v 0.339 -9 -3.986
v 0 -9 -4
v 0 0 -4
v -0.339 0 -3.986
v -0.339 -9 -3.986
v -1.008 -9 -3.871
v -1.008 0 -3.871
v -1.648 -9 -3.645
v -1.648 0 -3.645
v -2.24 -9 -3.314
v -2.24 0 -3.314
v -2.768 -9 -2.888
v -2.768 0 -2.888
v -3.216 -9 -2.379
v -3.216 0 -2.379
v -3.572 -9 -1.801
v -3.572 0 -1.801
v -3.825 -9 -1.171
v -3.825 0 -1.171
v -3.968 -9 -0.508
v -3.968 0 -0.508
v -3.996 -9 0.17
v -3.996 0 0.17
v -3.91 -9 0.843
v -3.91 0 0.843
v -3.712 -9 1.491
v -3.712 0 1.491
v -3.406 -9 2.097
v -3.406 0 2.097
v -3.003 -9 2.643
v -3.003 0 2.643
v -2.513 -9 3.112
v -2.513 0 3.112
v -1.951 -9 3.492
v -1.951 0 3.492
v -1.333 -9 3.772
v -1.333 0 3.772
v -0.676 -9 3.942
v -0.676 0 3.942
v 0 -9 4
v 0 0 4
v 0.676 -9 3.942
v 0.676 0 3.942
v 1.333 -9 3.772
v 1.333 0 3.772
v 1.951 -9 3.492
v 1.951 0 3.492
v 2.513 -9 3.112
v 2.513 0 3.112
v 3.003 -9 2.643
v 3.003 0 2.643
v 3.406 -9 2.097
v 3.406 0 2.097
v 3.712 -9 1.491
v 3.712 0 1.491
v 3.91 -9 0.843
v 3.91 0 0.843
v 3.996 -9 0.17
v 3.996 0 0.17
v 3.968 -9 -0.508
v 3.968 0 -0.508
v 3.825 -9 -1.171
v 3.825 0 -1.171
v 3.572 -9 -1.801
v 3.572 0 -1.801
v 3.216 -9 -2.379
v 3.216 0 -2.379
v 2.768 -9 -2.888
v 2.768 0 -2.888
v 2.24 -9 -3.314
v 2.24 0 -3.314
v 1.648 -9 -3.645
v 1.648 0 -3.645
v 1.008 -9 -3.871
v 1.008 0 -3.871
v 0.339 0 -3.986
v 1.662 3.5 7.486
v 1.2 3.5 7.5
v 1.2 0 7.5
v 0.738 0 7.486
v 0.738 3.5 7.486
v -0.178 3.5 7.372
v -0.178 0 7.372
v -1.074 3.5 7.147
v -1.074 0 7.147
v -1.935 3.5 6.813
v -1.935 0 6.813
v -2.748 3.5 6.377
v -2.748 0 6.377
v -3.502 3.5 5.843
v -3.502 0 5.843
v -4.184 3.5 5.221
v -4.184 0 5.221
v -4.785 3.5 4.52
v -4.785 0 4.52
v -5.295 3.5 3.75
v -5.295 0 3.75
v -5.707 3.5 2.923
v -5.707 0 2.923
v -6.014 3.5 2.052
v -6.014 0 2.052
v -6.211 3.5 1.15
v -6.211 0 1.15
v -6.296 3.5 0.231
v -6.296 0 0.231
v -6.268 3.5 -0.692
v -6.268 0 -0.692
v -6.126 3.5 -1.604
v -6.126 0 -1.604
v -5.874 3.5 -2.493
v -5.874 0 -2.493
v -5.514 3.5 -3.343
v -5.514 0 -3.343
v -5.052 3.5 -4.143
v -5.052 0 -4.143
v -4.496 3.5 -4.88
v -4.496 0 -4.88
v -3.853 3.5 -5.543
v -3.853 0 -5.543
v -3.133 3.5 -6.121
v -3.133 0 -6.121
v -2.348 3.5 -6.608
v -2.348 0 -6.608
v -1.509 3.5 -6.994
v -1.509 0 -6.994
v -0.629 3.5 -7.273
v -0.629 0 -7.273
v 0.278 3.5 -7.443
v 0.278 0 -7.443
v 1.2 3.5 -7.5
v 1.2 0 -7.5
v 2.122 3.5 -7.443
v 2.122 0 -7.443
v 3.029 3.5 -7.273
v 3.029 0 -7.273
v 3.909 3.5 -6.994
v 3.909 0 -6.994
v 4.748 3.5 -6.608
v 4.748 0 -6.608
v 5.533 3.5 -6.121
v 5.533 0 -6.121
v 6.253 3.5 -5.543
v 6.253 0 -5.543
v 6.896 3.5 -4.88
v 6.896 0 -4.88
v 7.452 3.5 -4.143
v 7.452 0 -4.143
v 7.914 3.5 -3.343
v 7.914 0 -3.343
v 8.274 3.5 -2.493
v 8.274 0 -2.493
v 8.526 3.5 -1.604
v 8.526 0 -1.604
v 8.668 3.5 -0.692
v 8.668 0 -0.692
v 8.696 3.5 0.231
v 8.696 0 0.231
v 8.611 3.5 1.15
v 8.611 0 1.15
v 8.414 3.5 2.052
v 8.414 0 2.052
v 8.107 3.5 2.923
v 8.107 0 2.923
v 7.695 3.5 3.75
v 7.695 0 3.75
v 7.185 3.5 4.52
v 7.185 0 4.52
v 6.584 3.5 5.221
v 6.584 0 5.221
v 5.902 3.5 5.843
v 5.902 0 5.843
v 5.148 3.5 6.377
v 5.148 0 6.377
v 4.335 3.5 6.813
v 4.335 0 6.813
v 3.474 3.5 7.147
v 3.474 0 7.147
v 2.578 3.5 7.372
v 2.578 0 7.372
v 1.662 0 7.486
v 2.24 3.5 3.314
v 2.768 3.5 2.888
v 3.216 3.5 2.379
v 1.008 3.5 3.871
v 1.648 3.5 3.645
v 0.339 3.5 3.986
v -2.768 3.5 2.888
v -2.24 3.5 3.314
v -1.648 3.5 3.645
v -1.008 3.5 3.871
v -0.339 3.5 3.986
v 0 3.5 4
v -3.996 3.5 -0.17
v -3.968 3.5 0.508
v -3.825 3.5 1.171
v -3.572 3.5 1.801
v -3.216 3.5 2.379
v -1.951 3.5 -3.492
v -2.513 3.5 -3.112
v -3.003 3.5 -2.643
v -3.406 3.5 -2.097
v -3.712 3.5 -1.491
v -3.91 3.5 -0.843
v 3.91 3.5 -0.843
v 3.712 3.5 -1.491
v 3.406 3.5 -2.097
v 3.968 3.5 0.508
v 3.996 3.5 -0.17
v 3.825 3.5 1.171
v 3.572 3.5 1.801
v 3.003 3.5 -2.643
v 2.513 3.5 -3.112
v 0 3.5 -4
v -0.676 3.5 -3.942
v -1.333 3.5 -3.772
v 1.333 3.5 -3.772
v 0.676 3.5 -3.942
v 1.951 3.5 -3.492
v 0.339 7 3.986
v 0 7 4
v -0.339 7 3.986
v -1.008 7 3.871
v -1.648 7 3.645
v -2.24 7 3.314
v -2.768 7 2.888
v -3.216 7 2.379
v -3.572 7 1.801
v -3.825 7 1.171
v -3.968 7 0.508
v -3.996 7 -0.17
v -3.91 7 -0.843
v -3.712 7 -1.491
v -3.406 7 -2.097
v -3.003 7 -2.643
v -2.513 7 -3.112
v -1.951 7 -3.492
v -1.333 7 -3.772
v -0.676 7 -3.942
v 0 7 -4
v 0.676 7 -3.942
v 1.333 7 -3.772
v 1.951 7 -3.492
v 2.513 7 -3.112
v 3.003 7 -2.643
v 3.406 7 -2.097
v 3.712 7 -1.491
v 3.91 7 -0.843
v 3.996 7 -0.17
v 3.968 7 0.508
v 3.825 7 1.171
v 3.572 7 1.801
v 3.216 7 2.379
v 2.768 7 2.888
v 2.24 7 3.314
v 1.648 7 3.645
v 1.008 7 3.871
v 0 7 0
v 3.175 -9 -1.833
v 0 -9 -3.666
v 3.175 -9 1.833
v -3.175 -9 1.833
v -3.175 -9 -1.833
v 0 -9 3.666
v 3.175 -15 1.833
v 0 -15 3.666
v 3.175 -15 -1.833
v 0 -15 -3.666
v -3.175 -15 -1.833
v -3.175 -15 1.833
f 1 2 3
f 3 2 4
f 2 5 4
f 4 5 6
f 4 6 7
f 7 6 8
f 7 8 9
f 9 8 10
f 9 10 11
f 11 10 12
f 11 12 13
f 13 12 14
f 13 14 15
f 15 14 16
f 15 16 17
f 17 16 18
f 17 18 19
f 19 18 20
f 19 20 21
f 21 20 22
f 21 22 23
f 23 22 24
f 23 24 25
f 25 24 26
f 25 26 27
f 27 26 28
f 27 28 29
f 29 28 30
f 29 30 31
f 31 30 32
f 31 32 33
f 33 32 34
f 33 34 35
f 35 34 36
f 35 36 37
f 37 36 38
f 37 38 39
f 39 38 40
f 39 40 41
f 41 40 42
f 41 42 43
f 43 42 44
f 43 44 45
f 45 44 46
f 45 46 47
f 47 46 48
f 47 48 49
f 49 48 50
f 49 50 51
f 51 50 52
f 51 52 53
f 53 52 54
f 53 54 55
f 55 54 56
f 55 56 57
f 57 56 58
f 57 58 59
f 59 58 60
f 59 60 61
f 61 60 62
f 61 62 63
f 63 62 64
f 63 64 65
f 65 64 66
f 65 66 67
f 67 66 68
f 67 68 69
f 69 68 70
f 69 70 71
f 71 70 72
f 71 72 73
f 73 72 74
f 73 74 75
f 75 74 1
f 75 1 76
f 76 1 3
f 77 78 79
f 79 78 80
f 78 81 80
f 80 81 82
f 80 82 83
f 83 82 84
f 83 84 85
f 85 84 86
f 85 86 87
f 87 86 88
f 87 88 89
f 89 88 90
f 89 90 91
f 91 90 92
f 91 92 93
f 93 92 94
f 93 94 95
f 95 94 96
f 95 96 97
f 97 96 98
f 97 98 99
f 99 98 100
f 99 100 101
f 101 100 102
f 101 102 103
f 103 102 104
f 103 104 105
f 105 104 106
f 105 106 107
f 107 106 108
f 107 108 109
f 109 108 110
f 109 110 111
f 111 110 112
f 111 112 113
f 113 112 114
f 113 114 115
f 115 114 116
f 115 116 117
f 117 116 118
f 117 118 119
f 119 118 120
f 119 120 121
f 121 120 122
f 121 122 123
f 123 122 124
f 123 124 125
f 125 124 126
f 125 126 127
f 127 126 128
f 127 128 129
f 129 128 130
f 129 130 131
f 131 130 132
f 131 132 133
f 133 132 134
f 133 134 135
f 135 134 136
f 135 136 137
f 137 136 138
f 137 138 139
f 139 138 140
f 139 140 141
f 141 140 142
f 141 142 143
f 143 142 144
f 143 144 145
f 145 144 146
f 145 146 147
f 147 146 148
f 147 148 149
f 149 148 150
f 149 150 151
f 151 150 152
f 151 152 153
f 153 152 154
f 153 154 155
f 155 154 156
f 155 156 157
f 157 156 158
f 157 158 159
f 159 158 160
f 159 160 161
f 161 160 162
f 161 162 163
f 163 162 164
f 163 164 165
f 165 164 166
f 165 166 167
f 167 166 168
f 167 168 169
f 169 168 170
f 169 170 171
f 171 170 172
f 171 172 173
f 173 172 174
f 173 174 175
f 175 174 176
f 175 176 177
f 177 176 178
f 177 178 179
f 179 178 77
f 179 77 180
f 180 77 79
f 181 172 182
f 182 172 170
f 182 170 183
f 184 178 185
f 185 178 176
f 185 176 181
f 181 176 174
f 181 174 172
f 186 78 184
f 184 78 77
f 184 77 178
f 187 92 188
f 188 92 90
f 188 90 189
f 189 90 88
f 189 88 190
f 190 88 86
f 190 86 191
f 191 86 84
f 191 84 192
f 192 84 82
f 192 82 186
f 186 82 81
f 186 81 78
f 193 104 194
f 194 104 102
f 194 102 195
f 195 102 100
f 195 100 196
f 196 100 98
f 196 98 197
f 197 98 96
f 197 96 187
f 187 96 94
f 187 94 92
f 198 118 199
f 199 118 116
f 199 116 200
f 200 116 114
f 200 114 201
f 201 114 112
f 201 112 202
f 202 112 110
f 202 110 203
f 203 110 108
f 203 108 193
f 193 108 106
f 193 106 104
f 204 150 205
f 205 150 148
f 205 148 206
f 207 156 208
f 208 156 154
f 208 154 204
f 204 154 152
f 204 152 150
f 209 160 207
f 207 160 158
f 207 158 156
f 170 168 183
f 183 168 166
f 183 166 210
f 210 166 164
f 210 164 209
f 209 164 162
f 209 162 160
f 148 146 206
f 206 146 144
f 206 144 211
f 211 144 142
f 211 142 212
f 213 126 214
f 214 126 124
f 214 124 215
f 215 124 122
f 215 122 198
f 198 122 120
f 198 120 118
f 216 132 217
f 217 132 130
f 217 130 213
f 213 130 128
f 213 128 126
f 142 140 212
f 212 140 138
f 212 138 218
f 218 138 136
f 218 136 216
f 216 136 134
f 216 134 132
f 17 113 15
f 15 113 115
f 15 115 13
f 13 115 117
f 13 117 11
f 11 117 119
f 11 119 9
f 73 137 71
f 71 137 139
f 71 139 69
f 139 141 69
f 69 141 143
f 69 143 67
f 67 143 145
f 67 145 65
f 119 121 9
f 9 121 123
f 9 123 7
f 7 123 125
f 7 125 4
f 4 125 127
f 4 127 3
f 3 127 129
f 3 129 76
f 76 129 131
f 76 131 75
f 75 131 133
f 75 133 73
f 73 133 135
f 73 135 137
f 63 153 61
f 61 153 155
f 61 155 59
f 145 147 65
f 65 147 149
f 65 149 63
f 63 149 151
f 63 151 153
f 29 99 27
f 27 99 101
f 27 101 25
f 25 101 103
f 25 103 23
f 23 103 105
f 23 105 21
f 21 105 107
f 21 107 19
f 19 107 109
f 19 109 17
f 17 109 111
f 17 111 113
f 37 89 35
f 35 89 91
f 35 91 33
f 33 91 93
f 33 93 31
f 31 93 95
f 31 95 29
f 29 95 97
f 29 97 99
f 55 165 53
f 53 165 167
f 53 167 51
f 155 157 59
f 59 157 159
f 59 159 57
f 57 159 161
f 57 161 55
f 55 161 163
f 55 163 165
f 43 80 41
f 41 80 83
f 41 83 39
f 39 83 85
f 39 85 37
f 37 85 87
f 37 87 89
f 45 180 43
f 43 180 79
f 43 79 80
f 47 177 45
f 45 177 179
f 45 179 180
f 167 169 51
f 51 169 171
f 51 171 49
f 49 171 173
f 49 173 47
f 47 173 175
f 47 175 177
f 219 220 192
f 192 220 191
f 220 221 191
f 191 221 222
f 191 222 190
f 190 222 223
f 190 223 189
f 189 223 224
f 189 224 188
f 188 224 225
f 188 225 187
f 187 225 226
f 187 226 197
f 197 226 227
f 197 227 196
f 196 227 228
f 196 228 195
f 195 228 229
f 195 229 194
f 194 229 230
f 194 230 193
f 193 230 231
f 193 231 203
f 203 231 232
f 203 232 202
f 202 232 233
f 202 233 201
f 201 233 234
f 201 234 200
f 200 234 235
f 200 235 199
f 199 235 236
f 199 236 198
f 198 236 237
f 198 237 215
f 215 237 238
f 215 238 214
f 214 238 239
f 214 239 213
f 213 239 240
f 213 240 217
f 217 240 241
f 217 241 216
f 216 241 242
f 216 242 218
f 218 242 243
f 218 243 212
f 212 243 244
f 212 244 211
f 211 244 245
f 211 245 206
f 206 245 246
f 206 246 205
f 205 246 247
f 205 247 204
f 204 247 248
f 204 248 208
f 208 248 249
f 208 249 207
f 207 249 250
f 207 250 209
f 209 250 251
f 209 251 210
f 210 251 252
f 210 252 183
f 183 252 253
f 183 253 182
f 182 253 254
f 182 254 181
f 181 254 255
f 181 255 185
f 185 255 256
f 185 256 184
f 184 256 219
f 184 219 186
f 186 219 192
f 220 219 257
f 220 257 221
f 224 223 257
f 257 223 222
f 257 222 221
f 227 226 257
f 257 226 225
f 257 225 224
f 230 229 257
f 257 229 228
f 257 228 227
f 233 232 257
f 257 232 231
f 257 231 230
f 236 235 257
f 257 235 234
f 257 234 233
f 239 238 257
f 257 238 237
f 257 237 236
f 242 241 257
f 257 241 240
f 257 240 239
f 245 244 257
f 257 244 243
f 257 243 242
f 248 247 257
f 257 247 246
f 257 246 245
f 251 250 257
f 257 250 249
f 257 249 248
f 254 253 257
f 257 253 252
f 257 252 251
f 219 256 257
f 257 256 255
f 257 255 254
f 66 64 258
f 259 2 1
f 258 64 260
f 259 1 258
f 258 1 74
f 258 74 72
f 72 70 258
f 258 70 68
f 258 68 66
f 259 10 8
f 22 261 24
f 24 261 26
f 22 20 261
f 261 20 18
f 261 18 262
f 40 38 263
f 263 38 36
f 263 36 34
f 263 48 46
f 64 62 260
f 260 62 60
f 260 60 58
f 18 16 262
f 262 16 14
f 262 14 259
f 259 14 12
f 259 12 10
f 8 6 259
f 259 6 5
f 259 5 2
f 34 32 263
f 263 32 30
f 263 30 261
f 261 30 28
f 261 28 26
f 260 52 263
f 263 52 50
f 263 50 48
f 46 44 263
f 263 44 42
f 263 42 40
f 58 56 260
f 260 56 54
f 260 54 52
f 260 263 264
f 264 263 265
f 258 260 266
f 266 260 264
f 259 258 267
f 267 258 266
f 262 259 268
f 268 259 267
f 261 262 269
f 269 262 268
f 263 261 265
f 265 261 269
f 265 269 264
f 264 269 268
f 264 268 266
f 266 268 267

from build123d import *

# Parameters (mm, degrees)
SKETCH3_R           = 7.5
BOSS_EXTRUDE1_DEPTH = 3.5
SKETCH4_R           = 4
BOSS_EXTRUDE2_DEPTH = 15
BOSS_EXTRUDE4_START = 3.5
SKETCH6_R           = 4
BOSS_EXTRUDE4_DEPTH = 3.5
SKETCH7_OUTSIDE_W   = 23.112
SKETCH7_OUTSIDE_H   = 23.112
CUT_EXTRUDE1_DEPTH  = 6


with BuildPart() as part:
    # Sketch3 → Boss-Extrude1 (new body)
    with BuildSketch(Plane(origin=(0, 0, 0), x_dir=(1, 0, 0), z_dir=(0, 1, 0))):
        with Locations(Location((1.2, 0, 0), (0, 0, 270))):
            Circle(SKETCH3_R)
    extrude(amount=BOSS_EXTRUDE1_DEPTH)

    # Sketch4 → Boss-Extrude2 (add)
    with BuildSketch(Plane.XZ):
        with Locations(Location((0, 0, 0), (0, 0, 270))):
            Circle(SKETCH4_R)
    extrude(amount=BOSS_EXTRUDE2_DEPTH)

    # Sketch6 → Boss-Extrude4 (add)
    with BuildSketch(Plane(origin=(0, 3.5, 0), x_dir=(1, 0, 0), z_dir=(0, 1, 0)).offset(BOSS_EXTRUDE4_START)):
        with Locations(Location((0, 0, 0), (0, 0, 90))):
            Circle(SKETCH6_R)
    extrude(amount=-BOSS_EXTRUDE4_DEPTH)

    # Sketch7 outside → Cut-Extrude1 (cut)
    with BuildSketch(Plane.XZ.offset(15)):
        with Locations((1.2, 0)):
            Rectangle(SKETCH7_OUTSIDE_W, SKETCH7_OUTSIDE_H)
        Polygon((0, 3.666174209), (-3.175, 1.833087105), (-3.175, -1.833087105), (0, -3.666174209), (3.175, -1.833087105), (3.175, 1.833087105), align=None, mode=Mode.SUBTRACT)
    extrude(amount=-CUT_EXTRUDE1_DEPTH, mode=Mode.SUBTRACT)


solid = part.part
